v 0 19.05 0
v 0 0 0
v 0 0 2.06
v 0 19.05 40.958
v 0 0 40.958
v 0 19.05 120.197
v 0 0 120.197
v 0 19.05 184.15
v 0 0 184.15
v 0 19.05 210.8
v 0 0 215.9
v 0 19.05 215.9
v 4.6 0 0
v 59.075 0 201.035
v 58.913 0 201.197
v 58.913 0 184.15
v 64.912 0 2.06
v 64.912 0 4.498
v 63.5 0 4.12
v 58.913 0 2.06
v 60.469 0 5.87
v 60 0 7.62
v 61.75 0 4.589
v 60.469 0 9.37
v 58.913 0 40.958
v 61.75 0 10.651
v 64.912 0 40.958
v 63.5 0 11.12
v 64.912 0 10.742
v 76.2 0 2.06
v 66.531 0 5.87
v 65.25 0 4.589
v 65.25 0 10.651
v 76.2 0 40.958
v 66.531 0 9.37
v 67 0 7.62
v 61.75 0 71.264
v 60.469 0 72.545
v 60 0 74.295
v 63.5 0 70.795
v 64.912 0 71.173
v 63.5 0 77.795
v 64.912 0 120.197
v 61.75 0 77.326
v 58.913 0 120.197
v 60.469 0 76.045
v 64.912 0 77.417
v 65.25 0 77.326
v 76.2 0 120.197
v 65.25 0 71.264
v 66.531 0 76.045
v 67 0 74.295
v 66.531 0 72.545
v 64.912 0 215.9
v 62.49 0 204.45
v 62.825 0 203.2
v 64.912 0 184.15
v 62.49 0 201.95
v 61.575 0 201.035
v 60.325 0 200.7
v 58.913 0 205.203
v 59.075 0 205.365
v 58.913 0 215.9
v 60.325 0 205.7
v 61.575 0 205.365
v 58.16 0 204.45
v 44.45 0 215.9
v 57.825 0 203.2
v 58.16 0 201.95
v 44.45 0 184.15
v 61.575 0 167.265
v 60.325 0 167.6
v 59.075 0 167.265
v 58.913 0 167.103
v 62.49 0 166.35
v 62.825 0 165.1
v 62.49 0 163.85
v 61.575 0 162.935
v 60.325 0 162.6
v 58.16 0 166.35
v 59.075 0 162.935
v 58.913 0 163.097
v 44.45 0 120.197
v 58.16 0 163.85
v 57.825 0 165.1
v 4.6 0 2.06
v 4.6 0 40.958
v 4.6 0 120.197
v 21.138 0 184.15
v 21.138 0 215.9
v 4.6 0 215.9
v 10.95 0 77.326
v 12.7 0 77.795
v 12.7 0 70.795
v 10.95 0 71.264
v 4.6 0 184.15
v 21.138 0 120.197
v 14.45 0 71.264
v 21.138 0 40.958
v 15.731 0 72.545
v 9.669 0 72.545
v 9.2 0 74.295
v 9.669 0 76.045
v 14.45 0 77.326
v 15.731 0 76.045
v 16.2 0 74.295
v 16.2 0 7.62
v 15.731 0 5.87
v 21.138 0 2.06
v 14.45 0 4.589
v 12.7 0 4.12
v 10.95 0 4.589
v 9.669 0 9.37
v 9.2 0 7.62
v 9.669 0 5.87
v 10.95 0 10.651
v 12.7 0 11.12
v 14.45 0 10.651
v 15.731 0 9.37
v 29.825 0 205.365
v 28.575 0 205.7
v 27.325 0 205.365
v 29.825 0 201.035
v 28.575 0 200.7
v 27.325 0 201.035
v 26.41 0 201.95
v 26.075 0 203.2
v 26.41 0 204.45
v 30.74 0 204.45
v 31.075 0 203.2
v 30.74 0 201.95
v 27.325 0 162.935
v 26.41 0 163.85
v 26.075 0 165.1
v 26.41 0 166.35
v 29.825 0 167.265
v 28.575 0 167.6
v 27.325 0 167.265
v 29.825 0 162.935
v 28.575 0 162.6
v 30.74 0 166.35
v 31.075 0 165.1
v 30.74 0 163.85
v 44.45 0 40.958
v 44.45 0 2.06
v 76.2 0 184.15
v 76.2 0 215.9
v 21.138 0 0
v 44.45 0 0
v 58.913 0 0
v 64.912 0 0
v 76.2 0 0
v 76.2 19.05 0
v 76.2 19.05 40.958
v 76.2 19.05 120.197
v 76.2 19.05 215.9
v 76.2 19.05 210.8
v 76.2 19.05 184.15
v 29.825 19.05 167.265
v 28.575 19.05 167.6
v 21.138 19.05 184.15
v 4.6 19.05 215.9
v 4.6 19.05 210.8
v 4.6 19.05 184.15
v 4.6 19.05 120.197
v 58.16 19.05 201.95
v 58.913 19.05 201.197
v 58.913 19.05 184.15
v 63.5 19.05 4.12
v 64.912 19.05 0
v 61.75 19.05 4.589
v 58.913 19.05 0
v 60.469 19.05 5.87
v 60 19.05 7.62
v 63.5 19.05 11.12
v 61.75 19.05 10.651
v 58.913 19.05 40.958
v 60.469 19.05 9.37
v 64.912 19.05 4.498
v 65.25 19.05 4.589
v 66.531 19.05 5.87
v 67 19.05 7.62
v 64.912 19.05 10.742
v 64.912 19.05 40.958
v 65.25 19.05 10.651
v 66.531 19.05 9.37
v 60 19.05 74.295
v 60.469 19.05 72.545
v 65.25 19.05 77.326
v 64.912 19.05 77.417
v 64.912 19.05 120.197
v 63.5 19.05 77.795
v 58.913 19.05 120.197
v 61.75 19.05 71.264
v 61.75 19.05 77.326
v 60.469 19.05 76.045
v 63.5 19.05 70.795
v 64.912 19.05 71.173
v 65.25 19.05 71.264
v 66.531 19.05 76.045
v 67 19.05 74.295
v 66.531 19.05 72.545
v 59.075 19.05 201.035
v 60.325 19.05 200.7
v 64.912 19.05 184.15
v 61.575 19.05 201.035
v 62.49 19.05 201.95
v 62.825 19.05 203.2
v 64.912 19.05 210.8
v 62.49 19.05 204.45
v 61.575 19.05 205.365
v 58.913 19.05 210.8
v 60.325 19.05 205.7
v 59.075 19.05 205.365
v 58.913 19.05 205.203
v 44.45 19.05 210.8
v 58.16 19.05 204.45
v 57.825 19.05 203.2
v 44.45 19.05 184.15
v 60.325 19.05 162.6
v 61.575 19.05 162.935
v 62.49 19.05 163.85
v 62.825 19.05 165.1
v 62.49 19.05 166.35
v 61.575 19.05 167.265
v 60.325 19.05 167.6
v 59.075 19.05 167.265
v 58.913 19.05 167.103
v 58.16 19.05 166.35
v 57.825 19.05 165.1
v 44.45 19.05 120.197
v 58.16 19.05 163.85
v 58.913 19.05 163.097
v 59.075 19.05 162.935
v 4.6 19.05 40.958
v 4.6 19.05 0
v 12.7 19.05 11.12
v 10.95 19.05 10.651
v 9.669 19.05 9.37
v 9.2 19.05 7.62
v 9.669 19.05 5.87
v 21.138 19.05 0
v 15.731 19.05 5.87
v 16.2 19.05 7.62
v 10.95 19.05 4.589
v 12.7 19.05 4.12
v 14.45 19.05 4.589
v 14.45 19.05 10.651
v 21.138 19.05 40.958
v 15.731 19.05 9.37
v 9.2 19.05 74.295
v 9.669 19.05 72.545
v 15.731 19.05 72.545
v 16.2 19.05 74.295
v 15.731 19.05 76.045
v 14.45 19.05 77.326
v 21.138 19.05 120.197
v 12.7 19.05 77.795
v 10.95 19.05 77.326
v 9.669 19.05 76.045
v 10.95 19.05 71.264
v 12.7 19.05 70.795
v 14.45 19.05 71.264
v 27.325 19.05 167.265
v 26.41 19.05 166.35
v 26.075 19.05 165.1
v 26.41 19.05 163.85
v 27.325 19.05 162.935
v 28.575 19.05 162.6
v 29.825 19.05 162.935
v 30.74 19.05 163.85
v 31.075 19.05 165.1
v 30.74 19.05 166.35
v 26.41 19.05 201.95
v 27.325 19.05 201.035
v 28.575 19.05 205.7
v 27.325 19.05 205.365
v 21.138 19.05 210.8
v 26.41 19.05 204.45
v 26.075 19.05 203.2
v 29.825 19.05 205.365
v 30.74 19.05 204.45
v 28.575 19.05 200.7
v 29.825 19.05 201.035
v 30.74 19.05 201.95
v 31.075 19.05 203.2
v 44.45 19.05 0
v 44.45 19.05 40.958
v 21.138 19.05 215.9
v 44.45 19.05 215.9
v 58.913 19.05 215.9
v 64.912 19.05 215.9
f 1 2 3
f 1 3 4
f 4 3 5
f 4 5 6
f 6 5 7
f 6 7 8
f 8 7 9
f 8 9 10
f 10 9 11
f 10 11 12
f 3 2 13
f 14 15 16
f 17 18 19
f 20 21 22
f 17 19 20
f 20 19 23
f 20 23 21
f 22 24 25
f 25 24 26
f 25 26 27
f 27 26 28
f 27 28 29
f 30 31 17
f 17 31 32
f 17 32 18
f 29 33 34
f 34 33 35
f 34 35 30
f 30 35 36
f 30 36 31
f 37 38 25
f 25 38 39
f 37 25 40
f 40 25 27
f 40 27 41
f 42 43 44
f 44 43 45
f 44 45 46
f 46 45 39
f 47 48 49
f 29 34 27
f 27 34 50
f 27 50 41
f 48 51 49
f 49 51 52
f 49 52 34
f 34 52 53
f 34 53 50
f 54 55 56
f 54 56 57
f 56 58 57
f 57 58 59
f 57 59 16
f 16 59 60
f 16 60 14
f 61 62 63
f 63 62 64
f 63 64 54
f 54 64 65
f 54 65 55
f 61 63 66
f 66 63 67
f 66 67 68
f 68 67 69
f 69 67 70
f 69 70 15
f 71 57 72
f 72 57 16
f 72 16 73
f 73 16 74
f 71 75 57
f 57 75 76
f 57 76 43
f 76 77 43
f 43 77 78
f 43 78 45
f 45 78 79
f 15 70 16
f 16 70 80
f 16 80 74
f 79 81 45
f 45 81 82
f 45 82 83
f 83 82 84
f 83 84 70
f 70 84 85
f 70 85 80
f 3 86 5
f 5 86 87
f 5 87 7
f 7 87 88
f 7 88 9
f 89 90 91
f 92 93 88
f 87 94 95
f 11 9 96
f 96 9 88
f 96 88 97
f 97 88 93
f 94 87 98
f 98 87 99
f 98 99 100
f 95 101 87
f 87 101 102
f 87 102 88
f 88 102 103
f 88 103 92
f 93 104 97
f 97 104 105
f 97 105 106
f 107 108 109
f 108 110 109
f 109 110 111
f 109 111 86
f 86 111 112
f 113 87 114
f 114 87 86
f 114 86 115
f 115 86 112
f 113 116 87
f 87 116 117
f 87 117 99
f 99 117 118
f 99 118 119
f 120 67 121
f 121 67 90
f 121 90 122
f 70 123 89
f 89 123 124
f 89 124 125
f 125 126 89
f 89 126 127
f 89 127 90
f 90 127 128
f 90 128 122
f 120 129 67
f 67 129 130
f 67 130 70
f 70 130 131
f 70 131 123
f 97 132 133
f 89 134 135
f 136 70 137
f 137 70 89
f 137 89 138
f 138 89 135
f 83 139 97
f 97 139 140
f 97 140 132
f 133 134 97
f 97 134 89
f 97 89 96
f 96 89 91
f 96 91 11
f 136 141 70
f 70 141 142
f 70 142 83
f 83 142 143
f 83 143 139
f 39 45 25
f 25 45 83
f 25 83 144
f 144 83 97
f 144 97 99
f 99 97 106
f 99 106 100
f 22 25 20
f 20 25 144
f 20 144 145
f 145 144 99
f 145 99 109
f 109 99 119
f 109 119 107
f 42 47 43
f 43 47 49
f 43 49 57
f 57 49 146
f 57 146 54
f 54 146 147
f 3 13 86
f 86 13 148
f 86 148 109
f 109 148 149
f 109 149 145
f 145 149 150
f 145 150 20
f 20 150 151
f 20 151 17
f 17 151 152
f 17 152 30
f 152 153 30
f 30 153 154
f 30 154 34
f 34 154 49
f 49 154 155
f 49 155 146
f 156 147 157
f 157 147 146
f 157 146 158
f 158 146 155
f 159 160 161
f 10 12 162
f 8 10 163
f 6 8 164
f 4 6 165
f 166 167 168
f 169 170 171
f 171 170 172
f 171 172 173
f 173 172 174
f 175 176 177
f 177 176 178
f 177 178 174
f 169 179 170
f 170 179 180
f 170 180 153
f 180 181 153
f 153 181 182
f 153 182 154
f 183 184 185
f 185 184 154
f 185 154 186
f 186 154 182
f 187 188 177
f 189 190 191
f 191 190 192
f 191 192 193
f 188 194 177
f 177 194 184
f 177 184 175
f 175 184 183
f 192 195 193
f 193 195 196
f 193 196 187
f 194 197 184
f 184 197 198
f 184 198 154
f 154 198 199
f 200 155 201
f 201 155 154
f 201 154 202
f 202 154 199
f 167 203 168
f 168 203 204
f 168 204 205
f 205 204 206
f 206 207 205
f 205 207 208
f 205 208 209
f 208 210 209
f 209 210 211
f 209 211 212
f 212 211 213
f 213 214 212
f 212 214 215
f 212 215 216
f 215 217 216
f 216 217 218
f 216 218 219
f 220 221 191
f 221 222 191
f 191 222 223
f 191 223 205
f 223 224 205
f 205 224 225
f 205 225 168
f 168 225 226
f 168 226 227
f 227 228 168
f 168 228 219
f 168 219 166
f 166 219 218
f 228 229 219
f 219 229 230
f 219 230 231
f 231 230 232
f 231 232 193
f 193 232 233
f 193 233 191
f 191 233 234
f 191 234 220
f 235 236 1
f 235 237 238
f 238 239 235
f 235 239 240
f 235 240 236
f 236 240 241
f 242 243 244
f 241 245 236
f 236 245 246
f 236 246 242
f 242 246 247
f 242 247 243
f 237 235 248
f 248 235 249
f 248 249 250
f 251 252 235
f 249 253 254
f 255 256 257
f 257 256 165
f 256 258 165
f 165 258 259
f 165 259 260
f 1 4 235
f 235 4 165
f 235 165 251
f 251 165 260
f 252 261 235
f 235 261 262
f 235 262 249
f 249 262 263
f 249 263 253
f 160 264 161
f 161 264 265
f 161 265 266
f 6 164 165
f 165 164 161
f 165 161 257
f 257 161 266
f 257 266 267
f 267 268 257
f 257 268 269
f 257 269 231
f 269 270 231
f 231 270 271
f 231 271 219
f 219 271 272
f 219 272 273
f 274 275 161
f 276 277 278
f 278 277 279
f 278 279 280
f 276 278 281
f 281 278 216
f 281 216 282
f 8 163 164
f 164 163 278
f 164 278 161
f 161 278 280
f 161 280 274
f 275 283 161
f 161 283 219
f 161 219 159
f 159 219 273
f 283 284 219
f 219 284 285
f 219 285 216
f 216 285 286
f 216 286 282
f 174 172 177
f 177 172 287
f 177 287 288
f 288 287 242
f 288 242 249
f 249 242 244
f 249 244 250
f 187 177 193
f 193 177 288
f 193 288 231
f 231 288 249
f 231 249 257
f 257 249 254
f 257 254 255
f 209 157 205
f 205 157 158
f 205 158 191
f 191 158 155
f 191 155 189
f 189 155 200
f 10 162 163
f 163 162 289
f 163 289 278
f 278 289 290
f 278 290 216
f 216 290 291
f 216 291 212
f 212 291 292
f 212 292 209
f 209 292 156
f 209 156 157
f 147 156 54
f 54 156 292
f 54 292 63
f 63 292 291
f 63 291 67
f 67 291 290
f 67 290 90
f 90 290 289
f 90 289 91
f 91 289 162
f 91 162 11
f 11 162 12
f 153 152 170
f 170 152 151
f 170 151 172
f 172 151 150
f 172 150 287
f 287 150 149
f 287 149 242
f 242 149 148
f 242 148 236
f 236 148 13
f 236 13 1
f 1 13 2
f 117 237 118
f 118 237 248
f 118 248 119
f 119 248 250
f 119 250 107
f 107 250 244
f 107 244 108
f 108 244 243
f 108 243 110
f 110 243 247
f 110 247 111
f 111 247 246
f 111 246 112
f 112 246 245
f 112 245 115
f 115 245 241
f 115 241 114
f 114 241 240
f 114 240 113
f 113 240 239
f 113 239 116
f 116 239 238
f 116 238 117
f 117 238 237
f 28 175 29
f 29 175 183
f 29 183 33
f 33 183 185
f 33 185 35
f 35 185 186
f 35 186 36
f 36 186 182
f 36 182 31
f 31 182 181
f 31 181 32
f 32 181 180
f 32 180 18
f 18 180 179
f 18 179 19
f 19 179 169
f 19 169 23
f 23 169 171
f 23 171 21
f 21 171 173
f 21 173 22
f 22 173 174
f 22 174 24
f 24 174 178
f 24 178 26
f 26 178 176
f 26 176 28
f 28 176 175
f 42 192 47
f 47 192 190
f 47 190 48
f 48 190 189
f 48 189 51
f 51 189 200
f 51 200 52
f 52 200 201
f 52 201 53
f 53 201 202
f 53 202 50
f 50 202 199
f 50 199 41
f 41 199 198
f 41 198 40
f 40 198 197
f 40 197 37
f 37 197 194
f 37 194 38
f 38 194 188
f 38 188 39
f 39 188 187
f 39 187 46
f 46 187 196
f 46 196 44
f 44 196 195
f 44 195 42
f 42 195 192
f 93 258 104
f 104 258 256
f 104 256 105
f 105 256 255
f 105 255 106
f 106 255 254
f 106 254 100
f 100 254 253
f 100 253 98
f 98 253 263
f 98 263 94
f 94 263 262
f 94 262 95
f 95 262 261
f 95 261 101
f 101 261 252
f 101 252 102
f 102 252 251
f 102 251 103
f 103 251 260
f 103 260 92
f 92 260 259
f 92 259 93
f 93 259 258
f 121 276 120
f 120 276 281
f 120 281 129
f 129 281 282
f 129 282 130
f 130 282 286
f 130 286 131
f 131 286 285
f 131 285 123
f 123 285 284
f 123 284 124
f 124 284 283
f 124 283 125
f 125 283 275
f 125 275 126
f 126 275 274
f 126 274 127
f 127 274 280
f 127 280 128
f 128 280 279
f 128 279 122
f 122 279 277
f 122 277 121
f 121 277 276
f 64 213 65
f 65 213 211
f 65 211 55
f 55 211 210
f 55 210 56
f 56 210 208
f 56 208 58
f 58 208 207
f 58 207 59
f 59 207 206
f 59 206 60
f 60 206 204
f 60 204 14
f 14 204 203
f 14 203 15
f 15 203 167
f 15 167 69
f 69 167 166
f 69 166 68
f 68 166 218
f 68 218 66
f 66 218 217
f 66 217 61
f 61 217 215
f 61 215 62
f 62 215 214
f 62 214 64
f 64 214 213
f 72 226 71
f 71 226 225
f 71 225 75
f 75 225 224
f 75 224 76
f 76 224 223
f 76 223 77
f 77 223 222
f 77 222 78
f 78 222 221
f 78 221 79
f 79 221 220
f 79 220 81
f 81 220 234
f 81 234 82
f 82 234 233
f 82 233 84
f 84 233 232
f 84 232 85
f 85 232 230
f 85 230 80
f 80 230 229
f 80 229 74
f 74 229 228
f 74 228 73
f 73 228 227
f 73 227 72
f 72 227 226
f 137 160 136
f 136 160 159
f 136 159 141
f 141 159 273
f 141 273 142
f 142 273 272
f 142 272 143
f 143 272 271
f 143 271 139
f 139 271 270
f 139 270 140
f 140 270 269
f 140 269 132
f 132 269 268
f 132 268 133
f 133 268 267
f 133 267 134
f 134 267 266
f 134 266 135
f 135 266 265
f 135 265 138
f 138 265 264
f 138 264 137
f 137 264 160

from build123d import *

# Parameters (mm, degrees)
SKETCH2_W           = 76.2
SKETCH2_H           = 19.05
BOSS_EXTRUDE1_DEPTH = 215.9
SKETCH3_R           = 3.5
CUT_EXTRUDE1_DEPTH  = 20.05
SKETCH4_R           = 2.5
CUT_EXTRUDE2_DEPTH  = 20.05


with BuildPart() as part:
    # Sketch2 → Boss-Extrude1 (new body)
    with BuildSketch(Plane.XY):
        with Locations((38.1, 9.525)):
            Rectangle(SKETCH2_W, SKETCH2_H)
    extrude(amount=BOSS_EXTRUDE1_DEPTH)

    # Sketch3 → Cut-Extrude1 (cut, through all)
    with BuildSketch(Plane(origin=(0, 19.05, 0), x_dir=(1, 0, 0), z_dir=(0, 1, 0))):
        with Locations((12.7, -7.62)):
            Circle(SKETCH3_R)
        with Locations((63.5, -7.62)):
            Circle(SKETCH3_R)
        with Locations((63.5, -74.295)):
            Circle(SKETCH3_R)
        with Locations((12.7, -74.295)):
            Circle(SKETCH3_R)
    extrude(amount=-CUT_EXTRUDE1_DEPTH, mode=Mode.SUBTRACT)

    # Sketch4 → Cut-Extrude2 (cut, through all)
    with BuildSketch(Plane(origin=(0, 19.05, 0), x_dir=(1, 0, 0), z_dir=(0, 1, 0))):
        with Locations((28.575, -203.2)):
            Circle(SKETCH4_R)
        with Locations((60.325, -203.2)):
            Circle(SKETCH4_R)
        with Locations((60.325, -165.1)):
            Circle(SKETCH4_R)
        with Locations((28.575, -165.1)):
            Circle(SKETCH4_R)
    extrude(amount=-CUT_EXTRUDE2_DEPTH, mode=Mode.SUBTRACT)


solid = part.part
